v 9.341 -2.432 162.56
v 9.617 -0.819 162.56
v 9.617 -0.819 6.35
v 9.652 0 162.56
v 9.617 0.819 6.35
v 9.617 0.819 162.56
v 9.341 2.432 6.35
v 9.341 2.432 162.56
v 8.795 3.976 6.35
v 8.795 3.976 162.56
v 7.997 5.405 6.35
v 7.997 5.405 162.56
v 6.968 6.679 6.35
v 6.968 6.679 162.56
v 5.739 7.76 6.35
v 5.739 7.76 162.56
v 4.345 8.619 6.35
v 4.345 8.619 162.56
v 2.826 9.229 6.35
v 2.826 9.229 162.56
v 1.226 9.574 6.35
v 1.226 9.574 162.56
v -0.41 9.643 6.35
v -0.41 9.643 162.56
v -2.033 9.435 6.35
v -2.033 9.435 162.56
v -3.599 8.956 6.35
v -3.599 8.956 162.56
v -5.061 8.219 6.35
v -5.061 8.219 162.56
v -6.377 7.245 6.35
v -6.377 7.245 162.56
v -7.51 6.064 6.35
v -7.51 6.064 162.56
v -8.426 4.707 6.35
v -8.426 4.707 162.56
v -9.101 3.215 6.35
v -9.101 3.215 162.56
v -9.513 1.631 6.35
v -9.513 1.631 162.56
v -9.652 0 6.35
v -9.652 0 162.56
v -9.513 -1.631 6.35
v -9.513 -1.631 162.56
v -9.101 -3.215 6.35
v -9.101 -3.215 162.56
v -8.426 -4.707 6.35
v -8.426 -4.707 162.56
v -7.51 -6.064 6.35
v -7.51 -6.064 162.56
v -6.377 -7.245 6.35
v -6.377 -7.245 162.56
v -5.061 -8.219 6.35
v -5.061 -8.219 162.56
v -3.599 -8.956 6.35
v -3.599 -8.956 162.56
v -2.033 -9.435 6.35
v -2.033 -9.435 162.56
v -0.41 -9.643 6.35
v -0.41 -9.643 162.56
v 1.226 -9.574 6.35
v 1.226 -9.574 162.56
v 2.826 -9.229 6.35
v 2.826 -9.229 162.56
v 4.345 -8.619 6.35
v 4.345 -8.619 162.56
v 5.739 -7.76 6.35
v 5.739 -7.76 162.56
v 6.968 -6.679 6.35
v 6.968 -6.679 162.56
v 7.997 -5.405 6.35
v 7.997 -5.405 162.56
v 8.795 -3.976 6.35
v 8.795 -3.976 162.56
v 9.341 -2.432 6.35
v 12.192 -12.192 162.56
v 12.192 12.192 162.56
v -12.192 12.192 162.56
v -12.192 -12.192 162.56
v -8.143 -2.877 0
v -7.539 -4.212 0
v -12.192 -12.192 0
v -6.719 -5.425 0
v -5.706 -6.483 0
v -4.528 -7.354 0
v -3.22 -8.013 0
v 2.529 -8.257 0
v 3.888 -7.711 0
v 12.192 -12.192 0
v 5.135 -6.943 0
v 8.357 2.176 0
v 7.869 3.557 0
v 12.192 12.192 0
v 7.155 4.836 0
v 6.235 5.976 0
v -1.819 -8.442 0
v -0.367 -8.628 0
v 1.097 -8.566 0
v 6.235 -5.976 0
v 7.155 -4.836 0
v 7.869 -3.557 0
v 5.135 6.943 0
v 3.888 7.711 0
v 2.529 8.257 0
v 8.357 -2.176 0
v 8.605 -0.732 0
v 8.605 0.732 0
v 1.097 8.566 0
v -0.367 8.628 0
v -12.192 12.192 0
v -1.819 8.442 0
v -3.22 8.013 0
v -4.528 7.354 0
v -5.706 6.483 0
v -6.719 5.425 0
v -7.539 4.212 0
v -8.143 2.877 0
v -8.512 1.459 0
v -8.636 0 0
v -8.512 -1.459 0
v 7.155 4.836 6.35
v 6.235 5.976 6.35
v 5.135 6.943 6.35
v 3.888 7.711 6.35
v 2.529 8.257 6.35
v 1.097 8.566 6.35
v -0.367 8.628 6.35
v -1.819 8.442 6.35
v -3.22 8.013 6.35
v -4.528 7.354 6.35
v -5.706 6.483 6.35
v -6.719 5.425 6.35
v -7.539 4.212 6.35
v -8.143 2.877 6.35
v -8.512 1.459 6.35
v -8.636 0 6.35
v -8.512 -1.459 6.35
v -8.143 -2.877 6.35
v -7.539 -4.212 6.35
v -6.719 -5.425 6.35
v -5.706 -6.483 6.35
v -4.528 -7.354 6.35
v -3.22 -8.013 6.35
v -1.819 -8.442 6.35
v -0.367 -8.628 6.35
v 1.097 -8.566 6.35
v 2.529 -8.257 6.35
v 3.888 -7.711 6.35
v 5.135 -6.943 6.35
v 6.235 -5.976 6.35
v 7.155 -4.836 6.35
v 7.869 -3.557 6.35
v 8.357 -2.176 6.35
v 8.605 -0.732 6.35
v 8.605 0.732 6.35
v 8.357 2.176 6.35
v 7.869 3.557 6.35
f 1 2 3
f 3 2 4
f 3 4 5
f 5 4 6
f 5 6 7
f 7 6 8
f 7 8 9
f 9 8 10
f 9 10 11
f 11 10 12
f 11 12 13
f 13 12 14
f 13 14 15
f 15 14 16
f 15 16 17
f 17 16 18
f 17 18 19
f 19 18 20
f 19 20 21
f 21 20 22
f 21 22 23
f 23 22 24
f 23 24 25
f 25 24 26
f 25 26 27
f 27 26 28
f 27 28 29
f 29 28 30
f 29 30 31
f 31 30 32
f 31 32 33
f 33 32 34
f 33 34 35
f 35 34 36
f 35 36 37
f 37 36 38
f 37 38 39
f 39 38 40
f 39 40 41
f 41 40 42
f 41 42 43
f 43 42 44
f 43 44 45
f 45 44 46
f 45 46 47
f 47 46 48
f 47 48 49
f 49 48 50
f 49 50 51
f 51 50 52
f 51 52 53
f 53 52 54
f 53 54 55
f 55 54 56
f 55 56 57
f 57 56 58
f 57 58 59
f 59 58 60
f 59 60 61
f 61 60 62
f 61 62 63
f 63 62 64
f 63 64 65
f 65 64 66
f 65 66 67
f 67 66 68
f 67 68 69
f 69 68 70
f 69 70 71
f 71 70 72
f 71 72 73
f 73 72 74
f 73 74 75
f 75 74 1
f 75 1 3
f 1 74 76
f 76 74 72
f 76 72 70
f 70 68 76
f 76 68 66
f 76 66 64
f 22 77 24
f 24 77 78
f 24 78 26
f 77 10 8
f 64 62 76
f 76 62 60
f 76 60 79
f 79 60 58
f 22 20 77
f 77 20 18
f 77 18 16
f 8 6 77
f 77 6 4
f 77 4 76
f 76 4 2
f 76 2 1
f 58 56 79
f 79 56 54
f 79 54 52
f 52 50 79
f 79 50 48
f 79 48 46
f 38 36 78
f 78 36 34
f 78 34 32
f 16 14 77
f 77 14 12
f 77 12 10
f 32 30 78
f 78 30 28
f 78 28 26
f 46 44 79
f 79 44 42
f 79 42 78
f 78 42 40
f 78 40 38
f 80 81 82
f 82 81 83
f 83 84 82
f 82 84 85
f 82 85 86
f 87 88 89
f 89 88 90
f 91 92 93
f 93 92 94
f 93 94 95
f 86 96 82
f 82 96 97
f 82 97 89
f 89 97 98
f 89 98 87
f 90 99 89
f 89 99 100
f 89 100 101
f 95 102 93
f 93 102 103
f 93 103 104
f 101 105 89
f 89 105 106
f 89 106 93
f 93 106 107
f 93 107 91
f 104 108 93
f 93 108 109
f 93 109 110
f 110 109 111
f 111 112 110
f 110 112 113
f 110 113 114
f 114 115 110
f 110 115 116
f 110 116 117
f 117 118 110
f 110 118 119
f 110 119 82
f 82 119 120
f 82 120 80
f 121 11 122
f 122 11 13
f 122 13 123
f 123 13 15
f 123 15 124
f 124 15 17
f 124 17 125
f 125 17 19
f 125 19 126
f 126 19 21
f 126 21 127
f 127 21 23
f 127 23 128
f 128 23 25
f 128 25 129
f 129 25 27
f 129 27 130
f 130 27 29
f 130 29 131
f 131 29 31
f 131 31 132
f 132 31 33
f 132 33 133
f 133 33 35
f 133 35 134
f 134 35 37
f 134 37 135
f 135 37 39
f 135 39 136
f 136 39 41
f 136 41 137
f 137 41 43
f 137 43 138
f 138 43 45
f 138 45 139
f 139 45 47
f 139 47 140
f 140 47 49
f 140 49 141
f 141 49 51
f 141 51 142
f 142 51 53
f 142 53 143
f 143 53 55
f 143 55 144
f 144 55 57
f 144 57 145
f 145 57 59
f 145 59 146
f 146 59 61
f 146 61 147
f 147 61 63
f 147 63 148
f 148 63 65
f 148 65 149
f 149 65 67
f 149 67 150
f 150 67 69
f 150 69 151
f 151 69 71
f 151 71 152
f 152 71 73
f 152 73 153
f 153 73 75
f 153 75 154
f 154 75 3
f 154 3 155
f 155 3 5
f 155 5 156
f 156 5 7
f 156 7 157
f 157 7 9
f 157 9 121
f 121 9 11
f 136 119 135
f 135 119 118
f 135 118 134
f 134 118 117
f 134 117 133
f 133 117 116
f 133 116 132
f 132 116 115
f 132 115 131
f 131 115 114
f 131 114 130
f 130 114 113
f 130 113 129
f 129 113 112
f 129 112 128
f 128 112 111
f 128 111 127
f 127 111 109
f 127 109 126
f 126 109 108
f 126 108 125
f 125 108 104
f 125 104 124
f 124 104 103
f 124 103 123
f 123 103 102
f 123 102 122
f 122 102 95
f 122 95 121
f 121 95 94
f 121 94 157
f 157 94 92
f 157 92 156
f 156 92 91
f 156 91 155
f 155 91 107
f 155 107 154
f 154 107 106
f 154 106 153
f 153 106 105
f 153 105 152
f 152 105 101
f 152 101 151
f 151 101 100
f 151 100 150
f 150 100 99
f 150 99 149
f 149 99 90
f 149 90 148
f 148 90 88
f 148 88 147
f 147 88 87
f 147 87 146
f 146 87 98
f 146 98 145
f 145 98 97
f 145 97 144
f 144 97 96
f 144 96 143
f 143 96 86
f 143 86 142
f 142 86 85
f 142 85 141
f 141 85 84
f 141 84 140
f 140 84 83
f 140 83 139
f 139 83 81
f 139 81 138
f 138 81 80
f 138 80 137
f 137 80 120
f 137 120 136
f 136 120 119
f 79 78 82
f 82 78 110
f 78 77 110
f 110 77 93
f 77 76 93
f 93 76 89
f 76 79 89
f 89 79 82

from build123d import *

# Parameters (mm, degrees)
SKETCH1_R                = 12.192
SKETCH1_R_2              = 9.652
MAIN_INNER_TUBE_DEPTH    = 162.56
SKETCH3_R                = 9.652
SKETCH3_R_2              = 8.636
INNER_BLOCKING_LIP_DEPTH = 6.35
SKETCH6_W                = 24.384
SKETCH6_H                = 24.384
SKETCH6_R                = 9.652
RECTANGLE_OUTSIDE_DEPTH  = 162.56


with BuildPart() as part:
    # Sketch1 → Main Inner Tube (new body)
    with BuildSketch(Plane.XY):
        Circle(SKETCH1_R)
        Circle(SKETCH1_R_2, mode=Mode.SUBTRACT)
    extrude(amount=MAIN_INNER_TUBE_DEPTH)

    # Sketch3 → Inner Blocking Lip (add)
    with BuildSketch(Plane(origin=(0, 0, 0), x_dir=(-1, 0, 0), z_dir=(0, 0, -1))):
        Circle(SKETCH3_R)
        Circle(SKETCH3_R_2, mode=Mode.SUBTRACT)
    extrude(amount=-INNER_BLOCKING_LIP_DEPTH)

    # Sketch6 → Rectangle Outside (add, through all)
    with BuildSketch(Plane.XY.offset(162.56)):
        Rectangle(SKETCH6_W, SKETCH6_H)
        with Locations(Location((0, 0, 0), (0, 0, 180))):
            Circle(SKETCH6_R, mode=Mode.SUBTRACT)
    extrude(amount=-RECTANGLE_OUTSIDE_DEPTH)


solid = part.part
